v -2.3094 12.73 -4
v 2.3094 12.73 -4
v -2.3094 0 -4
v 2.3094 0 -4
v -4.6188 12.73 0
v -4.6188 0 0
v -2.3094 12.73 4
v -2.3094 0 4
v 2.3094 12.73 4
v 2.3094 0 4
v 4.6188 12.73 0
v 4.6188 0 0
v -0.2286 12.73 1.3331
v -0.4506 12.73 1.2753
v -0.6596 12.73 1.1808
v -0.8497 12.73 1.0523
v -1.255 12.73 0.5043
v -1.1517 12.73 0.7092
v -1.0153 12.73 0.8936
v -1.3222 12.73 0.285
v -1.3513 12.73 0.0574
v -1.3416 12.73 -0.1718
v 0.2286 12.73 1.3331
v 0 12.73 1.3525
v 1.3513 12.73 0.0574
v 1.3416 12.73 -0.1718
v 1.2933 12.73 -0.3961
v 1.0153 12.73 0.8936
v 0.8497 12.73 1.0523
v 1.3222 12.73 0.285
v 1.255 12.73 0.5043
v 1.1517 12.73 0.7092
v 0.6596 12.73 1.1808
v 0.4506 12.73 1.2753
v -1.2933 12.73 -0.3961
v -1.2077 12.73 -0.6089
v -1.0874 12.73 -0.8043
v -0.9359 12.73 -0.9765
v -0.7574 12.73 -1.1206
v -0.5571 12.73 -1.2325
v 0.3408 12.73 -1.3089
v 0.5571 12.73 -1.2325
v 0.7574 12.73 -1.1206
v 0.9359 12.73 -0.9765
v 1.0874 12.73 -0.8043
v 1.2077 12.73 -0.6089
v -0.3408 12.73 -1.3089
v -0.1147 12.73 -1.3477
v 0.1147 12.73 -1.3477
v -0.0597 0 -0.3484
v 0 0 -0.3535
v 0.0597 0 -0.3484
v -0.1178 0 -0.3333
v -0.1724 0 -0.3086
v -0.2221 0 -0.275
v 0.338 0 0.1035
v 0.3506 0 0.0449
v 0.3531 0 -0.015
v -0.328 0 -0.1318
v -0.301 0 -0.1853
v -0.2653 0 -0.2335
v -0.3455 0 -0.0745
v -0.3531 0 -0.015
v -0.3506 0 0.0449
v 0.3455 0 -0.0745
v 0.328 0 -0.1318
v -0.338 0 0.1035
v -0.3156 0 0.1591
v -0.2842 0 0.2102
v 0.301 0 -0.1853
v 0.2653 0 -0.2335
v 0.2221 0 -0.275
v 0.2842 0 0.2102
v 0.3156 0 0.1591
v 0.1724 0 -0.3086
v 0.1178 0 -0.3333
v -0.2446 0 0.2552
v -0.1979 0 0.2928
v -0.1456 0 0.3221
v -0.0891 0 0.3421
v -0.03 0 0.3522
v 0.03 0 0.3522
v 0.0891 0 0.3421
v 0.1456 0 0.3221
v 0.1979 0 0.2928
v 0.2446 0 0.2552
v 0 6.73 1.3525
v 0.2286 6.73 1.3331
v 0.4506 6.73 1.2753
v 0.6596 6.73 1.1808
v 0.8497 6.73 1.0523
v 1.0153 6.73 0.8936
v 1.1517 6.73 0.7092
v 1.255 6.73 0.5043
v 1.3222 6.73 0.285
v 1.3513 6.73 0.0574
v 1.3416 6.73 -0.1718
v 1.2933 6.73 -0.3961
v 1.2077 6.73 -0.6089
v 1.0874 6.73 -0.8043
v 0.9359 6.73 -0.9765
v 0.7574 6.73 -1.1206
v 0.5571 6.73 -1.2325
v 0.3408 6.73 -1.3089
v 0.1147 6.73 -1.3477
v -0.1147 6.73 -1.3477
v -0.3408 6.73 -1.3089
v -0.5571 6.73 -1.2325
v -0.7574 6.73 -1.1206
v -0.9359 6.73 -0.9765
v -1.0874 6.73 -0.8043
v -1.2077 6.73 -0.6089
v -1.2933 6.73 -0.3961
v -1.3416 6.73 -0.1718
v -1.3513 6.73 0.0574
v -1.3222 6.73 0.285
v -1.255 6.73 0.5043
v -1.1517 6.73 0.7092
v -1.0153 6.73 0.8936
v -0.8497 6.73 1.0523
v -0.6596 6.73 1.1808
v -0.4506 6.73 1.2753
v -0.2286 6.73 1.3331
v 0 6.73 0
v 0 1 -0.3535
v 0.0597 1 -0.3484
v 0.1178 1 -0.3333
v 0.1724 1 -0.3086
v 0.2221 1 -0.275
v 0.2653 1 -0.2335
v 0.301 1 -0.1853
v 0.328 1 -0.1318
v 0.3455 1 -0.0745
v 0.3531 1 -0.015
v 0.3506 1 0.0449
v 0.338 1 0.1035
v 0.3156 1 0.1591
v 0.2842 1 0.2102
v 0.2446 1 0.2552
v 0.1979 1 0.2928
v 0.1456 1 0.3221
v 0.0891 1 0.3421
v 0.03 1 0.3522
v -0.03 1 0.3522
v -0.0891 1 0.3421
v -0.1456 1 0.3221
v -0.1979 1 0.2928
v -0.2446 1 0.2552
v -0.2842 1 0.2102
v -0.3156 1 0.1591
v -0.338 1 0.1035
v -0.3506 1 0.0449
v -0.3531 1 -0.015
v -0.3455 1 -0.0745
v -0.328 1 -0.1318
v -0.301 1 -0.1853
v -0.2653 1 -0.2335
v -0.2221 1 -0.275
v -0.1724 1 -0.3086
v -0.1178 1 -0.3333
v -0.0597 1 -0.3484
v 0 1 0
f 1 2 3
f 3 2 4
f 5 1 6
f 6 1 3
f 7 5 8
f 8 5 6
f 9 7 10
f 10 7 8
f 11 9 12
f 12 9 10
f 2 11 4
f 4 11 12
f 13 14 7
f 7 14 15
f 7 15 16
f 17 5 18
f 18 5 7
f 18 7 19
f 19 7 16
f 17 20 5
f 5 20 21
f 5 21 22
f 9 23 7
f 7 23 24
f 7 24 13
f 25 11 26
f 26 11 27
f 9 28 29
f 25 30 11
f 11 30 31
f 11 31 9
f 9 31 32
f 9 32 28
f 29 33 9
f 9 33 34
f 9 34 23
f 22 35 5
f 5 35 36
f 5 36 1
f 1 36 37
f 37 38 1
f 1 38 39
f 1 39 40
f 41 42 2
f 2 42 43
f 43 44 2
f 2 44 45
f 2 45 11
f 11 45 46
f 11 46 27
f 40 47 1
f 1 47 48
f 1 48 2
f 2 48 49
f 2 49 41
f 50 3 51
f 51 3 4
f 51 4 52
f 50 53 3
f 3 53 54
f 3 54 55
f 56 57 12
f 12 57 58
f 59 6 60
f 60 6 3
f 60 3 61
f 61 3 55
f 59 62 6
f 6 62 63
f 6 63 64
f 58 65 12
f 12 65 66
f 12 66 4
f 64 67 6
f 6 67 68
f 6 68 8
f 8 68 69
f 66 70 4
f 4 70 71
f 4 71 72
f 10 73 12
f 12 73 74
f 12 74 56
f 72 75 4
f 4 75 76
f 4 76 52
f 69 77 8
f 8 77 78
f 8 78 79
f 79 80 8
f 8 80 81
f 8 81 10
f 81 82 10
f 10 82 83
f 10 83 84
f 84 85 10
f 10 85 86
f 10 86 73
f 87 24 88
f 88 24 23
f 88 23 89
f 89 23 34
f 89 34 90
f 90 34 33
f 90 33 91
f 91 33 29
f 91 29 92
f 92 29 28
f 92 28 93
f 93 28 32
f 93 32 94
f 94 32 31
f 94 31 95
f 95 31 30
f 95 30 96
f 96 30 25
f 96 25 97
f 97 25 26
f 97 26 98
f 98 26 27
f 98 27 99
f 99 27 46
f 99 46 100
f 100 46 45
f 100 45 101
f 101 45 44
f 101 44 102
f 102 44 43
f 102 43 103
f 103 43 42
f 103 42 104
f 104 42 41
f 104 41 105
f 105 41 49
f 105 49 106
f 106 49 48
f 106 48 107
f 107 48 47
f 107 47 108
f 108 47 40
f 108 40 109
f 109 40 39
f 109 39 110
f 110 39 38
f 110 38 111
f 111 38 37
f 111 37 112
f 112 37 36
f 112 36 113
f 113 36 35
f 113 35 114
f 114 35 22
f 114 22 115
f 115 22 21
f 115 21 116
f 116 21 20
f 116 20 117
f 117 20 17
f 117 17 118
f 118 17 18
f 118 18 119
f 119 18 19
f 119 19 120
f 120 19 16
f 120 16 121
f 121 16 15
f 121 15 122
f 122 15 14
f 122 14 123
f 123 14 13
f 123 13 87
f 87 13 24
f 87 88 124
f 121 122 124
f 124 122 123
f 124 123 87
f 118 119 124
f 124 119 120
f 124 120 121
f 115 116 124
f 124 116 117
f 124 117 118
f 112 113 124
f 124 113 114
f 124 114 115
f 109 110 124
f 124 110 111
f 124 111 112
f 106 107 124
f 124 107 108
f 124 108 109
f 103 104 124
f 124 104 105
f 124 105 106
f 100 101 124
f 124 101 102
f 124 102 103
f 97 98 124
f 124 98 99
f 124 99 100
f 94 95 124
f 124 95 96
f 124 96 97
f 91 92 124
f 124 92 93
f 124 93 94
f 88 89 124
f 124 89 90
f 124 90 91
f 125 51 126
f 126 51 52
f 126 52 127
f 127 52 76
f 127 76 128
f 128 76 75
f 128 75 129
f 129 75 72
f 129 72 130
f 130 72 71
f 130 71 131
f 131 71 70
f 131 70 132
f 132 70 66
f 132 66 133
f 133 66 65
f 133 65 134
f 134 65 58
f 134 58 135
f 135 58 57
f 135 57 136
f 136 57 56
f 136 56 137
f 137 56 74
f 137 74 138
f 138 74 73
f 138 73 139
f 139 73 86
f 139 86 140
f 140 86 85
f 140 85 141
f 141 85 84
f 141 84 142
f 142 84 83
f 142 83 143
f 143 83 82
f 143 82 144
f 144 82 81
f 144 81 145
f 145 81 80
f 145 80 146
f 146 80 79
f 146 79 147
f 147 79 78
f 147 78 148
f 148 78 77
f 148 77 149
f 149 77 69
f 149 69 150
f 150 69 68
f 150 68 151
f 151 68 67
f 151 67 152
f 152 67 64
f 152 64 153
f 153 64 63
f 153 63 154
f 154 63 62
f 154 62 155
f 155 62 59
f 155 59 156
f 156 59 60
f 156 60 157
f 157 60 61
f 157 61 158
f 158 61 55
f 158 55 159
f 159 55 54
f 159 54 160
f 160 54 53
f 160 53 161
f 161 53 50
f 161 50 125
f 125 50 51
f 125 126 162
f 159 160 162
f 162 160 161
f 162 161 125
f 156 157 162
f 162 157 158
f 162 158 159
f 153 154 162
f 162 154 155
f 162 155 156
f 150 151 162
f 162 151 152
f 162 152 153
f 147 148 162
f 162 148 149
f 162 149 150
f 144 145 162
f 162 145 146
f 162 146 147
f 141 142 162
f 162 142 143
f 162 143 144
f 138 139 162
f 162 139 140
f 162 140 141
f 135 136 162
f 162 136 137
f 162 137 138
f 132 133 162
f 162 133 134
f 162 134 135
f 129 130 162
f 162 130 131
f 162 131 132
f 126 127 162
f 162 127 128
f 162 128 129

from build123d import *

# Parameters (mm, degrees)
BOSS_EXTRUDE1_DEPTH = 12.73
SKETCH3_R           = 1.35255
CUT_EXTRUDE1_DEPTH  = 6
SKETCH4_R           = 0.353459893
CUT_EXTRUDE2_DEPTH  = 1


with BuildPart() as part:
    # Sketch1 → Boss-Extrude1 (new body)
    with BuildSketch(Plane(origin=(0, 0, 0), x_dir=(1, 0, 0), z_dir=(0, 1, 0))):
        Polygon((-4.618802154, 0), (-2.309401077, -4), (2.309401077, -4), (4.618802154, 0), (2.309401077, 4), (-2.309401077, 4), align=None)
    extrude(amount=BOSS_EXTRUDE1_DEPTH)

    # Sketch3 → Cut-Extrude1 (cut)
    with BuildSketch(Plane(origin=(0, 12.73, 0), x_dir=(1, 0, 0), z_dir=(0, 1, 0))):
        with Locations(Location((0, 0, 0), (0, 0, 270))):
            Circle(SKETCH3_R)
    extrude(amount=-CUT_EXTRUDE1_DEPTH, mode=Mode.SUBTRACT)

    # Sketch4 → Cut-Extrude2 (cut)
    with BuildSketch(Plane.XZ):
        with Locations(Location((0, 0, 0), (0, 0, 270))):
            Circle(SKETCH4_R)
    extrude(amount=-CUT_EXTRUDE2_DEPTH, mode=Mode.SUBTRACT)


solid = part.part
